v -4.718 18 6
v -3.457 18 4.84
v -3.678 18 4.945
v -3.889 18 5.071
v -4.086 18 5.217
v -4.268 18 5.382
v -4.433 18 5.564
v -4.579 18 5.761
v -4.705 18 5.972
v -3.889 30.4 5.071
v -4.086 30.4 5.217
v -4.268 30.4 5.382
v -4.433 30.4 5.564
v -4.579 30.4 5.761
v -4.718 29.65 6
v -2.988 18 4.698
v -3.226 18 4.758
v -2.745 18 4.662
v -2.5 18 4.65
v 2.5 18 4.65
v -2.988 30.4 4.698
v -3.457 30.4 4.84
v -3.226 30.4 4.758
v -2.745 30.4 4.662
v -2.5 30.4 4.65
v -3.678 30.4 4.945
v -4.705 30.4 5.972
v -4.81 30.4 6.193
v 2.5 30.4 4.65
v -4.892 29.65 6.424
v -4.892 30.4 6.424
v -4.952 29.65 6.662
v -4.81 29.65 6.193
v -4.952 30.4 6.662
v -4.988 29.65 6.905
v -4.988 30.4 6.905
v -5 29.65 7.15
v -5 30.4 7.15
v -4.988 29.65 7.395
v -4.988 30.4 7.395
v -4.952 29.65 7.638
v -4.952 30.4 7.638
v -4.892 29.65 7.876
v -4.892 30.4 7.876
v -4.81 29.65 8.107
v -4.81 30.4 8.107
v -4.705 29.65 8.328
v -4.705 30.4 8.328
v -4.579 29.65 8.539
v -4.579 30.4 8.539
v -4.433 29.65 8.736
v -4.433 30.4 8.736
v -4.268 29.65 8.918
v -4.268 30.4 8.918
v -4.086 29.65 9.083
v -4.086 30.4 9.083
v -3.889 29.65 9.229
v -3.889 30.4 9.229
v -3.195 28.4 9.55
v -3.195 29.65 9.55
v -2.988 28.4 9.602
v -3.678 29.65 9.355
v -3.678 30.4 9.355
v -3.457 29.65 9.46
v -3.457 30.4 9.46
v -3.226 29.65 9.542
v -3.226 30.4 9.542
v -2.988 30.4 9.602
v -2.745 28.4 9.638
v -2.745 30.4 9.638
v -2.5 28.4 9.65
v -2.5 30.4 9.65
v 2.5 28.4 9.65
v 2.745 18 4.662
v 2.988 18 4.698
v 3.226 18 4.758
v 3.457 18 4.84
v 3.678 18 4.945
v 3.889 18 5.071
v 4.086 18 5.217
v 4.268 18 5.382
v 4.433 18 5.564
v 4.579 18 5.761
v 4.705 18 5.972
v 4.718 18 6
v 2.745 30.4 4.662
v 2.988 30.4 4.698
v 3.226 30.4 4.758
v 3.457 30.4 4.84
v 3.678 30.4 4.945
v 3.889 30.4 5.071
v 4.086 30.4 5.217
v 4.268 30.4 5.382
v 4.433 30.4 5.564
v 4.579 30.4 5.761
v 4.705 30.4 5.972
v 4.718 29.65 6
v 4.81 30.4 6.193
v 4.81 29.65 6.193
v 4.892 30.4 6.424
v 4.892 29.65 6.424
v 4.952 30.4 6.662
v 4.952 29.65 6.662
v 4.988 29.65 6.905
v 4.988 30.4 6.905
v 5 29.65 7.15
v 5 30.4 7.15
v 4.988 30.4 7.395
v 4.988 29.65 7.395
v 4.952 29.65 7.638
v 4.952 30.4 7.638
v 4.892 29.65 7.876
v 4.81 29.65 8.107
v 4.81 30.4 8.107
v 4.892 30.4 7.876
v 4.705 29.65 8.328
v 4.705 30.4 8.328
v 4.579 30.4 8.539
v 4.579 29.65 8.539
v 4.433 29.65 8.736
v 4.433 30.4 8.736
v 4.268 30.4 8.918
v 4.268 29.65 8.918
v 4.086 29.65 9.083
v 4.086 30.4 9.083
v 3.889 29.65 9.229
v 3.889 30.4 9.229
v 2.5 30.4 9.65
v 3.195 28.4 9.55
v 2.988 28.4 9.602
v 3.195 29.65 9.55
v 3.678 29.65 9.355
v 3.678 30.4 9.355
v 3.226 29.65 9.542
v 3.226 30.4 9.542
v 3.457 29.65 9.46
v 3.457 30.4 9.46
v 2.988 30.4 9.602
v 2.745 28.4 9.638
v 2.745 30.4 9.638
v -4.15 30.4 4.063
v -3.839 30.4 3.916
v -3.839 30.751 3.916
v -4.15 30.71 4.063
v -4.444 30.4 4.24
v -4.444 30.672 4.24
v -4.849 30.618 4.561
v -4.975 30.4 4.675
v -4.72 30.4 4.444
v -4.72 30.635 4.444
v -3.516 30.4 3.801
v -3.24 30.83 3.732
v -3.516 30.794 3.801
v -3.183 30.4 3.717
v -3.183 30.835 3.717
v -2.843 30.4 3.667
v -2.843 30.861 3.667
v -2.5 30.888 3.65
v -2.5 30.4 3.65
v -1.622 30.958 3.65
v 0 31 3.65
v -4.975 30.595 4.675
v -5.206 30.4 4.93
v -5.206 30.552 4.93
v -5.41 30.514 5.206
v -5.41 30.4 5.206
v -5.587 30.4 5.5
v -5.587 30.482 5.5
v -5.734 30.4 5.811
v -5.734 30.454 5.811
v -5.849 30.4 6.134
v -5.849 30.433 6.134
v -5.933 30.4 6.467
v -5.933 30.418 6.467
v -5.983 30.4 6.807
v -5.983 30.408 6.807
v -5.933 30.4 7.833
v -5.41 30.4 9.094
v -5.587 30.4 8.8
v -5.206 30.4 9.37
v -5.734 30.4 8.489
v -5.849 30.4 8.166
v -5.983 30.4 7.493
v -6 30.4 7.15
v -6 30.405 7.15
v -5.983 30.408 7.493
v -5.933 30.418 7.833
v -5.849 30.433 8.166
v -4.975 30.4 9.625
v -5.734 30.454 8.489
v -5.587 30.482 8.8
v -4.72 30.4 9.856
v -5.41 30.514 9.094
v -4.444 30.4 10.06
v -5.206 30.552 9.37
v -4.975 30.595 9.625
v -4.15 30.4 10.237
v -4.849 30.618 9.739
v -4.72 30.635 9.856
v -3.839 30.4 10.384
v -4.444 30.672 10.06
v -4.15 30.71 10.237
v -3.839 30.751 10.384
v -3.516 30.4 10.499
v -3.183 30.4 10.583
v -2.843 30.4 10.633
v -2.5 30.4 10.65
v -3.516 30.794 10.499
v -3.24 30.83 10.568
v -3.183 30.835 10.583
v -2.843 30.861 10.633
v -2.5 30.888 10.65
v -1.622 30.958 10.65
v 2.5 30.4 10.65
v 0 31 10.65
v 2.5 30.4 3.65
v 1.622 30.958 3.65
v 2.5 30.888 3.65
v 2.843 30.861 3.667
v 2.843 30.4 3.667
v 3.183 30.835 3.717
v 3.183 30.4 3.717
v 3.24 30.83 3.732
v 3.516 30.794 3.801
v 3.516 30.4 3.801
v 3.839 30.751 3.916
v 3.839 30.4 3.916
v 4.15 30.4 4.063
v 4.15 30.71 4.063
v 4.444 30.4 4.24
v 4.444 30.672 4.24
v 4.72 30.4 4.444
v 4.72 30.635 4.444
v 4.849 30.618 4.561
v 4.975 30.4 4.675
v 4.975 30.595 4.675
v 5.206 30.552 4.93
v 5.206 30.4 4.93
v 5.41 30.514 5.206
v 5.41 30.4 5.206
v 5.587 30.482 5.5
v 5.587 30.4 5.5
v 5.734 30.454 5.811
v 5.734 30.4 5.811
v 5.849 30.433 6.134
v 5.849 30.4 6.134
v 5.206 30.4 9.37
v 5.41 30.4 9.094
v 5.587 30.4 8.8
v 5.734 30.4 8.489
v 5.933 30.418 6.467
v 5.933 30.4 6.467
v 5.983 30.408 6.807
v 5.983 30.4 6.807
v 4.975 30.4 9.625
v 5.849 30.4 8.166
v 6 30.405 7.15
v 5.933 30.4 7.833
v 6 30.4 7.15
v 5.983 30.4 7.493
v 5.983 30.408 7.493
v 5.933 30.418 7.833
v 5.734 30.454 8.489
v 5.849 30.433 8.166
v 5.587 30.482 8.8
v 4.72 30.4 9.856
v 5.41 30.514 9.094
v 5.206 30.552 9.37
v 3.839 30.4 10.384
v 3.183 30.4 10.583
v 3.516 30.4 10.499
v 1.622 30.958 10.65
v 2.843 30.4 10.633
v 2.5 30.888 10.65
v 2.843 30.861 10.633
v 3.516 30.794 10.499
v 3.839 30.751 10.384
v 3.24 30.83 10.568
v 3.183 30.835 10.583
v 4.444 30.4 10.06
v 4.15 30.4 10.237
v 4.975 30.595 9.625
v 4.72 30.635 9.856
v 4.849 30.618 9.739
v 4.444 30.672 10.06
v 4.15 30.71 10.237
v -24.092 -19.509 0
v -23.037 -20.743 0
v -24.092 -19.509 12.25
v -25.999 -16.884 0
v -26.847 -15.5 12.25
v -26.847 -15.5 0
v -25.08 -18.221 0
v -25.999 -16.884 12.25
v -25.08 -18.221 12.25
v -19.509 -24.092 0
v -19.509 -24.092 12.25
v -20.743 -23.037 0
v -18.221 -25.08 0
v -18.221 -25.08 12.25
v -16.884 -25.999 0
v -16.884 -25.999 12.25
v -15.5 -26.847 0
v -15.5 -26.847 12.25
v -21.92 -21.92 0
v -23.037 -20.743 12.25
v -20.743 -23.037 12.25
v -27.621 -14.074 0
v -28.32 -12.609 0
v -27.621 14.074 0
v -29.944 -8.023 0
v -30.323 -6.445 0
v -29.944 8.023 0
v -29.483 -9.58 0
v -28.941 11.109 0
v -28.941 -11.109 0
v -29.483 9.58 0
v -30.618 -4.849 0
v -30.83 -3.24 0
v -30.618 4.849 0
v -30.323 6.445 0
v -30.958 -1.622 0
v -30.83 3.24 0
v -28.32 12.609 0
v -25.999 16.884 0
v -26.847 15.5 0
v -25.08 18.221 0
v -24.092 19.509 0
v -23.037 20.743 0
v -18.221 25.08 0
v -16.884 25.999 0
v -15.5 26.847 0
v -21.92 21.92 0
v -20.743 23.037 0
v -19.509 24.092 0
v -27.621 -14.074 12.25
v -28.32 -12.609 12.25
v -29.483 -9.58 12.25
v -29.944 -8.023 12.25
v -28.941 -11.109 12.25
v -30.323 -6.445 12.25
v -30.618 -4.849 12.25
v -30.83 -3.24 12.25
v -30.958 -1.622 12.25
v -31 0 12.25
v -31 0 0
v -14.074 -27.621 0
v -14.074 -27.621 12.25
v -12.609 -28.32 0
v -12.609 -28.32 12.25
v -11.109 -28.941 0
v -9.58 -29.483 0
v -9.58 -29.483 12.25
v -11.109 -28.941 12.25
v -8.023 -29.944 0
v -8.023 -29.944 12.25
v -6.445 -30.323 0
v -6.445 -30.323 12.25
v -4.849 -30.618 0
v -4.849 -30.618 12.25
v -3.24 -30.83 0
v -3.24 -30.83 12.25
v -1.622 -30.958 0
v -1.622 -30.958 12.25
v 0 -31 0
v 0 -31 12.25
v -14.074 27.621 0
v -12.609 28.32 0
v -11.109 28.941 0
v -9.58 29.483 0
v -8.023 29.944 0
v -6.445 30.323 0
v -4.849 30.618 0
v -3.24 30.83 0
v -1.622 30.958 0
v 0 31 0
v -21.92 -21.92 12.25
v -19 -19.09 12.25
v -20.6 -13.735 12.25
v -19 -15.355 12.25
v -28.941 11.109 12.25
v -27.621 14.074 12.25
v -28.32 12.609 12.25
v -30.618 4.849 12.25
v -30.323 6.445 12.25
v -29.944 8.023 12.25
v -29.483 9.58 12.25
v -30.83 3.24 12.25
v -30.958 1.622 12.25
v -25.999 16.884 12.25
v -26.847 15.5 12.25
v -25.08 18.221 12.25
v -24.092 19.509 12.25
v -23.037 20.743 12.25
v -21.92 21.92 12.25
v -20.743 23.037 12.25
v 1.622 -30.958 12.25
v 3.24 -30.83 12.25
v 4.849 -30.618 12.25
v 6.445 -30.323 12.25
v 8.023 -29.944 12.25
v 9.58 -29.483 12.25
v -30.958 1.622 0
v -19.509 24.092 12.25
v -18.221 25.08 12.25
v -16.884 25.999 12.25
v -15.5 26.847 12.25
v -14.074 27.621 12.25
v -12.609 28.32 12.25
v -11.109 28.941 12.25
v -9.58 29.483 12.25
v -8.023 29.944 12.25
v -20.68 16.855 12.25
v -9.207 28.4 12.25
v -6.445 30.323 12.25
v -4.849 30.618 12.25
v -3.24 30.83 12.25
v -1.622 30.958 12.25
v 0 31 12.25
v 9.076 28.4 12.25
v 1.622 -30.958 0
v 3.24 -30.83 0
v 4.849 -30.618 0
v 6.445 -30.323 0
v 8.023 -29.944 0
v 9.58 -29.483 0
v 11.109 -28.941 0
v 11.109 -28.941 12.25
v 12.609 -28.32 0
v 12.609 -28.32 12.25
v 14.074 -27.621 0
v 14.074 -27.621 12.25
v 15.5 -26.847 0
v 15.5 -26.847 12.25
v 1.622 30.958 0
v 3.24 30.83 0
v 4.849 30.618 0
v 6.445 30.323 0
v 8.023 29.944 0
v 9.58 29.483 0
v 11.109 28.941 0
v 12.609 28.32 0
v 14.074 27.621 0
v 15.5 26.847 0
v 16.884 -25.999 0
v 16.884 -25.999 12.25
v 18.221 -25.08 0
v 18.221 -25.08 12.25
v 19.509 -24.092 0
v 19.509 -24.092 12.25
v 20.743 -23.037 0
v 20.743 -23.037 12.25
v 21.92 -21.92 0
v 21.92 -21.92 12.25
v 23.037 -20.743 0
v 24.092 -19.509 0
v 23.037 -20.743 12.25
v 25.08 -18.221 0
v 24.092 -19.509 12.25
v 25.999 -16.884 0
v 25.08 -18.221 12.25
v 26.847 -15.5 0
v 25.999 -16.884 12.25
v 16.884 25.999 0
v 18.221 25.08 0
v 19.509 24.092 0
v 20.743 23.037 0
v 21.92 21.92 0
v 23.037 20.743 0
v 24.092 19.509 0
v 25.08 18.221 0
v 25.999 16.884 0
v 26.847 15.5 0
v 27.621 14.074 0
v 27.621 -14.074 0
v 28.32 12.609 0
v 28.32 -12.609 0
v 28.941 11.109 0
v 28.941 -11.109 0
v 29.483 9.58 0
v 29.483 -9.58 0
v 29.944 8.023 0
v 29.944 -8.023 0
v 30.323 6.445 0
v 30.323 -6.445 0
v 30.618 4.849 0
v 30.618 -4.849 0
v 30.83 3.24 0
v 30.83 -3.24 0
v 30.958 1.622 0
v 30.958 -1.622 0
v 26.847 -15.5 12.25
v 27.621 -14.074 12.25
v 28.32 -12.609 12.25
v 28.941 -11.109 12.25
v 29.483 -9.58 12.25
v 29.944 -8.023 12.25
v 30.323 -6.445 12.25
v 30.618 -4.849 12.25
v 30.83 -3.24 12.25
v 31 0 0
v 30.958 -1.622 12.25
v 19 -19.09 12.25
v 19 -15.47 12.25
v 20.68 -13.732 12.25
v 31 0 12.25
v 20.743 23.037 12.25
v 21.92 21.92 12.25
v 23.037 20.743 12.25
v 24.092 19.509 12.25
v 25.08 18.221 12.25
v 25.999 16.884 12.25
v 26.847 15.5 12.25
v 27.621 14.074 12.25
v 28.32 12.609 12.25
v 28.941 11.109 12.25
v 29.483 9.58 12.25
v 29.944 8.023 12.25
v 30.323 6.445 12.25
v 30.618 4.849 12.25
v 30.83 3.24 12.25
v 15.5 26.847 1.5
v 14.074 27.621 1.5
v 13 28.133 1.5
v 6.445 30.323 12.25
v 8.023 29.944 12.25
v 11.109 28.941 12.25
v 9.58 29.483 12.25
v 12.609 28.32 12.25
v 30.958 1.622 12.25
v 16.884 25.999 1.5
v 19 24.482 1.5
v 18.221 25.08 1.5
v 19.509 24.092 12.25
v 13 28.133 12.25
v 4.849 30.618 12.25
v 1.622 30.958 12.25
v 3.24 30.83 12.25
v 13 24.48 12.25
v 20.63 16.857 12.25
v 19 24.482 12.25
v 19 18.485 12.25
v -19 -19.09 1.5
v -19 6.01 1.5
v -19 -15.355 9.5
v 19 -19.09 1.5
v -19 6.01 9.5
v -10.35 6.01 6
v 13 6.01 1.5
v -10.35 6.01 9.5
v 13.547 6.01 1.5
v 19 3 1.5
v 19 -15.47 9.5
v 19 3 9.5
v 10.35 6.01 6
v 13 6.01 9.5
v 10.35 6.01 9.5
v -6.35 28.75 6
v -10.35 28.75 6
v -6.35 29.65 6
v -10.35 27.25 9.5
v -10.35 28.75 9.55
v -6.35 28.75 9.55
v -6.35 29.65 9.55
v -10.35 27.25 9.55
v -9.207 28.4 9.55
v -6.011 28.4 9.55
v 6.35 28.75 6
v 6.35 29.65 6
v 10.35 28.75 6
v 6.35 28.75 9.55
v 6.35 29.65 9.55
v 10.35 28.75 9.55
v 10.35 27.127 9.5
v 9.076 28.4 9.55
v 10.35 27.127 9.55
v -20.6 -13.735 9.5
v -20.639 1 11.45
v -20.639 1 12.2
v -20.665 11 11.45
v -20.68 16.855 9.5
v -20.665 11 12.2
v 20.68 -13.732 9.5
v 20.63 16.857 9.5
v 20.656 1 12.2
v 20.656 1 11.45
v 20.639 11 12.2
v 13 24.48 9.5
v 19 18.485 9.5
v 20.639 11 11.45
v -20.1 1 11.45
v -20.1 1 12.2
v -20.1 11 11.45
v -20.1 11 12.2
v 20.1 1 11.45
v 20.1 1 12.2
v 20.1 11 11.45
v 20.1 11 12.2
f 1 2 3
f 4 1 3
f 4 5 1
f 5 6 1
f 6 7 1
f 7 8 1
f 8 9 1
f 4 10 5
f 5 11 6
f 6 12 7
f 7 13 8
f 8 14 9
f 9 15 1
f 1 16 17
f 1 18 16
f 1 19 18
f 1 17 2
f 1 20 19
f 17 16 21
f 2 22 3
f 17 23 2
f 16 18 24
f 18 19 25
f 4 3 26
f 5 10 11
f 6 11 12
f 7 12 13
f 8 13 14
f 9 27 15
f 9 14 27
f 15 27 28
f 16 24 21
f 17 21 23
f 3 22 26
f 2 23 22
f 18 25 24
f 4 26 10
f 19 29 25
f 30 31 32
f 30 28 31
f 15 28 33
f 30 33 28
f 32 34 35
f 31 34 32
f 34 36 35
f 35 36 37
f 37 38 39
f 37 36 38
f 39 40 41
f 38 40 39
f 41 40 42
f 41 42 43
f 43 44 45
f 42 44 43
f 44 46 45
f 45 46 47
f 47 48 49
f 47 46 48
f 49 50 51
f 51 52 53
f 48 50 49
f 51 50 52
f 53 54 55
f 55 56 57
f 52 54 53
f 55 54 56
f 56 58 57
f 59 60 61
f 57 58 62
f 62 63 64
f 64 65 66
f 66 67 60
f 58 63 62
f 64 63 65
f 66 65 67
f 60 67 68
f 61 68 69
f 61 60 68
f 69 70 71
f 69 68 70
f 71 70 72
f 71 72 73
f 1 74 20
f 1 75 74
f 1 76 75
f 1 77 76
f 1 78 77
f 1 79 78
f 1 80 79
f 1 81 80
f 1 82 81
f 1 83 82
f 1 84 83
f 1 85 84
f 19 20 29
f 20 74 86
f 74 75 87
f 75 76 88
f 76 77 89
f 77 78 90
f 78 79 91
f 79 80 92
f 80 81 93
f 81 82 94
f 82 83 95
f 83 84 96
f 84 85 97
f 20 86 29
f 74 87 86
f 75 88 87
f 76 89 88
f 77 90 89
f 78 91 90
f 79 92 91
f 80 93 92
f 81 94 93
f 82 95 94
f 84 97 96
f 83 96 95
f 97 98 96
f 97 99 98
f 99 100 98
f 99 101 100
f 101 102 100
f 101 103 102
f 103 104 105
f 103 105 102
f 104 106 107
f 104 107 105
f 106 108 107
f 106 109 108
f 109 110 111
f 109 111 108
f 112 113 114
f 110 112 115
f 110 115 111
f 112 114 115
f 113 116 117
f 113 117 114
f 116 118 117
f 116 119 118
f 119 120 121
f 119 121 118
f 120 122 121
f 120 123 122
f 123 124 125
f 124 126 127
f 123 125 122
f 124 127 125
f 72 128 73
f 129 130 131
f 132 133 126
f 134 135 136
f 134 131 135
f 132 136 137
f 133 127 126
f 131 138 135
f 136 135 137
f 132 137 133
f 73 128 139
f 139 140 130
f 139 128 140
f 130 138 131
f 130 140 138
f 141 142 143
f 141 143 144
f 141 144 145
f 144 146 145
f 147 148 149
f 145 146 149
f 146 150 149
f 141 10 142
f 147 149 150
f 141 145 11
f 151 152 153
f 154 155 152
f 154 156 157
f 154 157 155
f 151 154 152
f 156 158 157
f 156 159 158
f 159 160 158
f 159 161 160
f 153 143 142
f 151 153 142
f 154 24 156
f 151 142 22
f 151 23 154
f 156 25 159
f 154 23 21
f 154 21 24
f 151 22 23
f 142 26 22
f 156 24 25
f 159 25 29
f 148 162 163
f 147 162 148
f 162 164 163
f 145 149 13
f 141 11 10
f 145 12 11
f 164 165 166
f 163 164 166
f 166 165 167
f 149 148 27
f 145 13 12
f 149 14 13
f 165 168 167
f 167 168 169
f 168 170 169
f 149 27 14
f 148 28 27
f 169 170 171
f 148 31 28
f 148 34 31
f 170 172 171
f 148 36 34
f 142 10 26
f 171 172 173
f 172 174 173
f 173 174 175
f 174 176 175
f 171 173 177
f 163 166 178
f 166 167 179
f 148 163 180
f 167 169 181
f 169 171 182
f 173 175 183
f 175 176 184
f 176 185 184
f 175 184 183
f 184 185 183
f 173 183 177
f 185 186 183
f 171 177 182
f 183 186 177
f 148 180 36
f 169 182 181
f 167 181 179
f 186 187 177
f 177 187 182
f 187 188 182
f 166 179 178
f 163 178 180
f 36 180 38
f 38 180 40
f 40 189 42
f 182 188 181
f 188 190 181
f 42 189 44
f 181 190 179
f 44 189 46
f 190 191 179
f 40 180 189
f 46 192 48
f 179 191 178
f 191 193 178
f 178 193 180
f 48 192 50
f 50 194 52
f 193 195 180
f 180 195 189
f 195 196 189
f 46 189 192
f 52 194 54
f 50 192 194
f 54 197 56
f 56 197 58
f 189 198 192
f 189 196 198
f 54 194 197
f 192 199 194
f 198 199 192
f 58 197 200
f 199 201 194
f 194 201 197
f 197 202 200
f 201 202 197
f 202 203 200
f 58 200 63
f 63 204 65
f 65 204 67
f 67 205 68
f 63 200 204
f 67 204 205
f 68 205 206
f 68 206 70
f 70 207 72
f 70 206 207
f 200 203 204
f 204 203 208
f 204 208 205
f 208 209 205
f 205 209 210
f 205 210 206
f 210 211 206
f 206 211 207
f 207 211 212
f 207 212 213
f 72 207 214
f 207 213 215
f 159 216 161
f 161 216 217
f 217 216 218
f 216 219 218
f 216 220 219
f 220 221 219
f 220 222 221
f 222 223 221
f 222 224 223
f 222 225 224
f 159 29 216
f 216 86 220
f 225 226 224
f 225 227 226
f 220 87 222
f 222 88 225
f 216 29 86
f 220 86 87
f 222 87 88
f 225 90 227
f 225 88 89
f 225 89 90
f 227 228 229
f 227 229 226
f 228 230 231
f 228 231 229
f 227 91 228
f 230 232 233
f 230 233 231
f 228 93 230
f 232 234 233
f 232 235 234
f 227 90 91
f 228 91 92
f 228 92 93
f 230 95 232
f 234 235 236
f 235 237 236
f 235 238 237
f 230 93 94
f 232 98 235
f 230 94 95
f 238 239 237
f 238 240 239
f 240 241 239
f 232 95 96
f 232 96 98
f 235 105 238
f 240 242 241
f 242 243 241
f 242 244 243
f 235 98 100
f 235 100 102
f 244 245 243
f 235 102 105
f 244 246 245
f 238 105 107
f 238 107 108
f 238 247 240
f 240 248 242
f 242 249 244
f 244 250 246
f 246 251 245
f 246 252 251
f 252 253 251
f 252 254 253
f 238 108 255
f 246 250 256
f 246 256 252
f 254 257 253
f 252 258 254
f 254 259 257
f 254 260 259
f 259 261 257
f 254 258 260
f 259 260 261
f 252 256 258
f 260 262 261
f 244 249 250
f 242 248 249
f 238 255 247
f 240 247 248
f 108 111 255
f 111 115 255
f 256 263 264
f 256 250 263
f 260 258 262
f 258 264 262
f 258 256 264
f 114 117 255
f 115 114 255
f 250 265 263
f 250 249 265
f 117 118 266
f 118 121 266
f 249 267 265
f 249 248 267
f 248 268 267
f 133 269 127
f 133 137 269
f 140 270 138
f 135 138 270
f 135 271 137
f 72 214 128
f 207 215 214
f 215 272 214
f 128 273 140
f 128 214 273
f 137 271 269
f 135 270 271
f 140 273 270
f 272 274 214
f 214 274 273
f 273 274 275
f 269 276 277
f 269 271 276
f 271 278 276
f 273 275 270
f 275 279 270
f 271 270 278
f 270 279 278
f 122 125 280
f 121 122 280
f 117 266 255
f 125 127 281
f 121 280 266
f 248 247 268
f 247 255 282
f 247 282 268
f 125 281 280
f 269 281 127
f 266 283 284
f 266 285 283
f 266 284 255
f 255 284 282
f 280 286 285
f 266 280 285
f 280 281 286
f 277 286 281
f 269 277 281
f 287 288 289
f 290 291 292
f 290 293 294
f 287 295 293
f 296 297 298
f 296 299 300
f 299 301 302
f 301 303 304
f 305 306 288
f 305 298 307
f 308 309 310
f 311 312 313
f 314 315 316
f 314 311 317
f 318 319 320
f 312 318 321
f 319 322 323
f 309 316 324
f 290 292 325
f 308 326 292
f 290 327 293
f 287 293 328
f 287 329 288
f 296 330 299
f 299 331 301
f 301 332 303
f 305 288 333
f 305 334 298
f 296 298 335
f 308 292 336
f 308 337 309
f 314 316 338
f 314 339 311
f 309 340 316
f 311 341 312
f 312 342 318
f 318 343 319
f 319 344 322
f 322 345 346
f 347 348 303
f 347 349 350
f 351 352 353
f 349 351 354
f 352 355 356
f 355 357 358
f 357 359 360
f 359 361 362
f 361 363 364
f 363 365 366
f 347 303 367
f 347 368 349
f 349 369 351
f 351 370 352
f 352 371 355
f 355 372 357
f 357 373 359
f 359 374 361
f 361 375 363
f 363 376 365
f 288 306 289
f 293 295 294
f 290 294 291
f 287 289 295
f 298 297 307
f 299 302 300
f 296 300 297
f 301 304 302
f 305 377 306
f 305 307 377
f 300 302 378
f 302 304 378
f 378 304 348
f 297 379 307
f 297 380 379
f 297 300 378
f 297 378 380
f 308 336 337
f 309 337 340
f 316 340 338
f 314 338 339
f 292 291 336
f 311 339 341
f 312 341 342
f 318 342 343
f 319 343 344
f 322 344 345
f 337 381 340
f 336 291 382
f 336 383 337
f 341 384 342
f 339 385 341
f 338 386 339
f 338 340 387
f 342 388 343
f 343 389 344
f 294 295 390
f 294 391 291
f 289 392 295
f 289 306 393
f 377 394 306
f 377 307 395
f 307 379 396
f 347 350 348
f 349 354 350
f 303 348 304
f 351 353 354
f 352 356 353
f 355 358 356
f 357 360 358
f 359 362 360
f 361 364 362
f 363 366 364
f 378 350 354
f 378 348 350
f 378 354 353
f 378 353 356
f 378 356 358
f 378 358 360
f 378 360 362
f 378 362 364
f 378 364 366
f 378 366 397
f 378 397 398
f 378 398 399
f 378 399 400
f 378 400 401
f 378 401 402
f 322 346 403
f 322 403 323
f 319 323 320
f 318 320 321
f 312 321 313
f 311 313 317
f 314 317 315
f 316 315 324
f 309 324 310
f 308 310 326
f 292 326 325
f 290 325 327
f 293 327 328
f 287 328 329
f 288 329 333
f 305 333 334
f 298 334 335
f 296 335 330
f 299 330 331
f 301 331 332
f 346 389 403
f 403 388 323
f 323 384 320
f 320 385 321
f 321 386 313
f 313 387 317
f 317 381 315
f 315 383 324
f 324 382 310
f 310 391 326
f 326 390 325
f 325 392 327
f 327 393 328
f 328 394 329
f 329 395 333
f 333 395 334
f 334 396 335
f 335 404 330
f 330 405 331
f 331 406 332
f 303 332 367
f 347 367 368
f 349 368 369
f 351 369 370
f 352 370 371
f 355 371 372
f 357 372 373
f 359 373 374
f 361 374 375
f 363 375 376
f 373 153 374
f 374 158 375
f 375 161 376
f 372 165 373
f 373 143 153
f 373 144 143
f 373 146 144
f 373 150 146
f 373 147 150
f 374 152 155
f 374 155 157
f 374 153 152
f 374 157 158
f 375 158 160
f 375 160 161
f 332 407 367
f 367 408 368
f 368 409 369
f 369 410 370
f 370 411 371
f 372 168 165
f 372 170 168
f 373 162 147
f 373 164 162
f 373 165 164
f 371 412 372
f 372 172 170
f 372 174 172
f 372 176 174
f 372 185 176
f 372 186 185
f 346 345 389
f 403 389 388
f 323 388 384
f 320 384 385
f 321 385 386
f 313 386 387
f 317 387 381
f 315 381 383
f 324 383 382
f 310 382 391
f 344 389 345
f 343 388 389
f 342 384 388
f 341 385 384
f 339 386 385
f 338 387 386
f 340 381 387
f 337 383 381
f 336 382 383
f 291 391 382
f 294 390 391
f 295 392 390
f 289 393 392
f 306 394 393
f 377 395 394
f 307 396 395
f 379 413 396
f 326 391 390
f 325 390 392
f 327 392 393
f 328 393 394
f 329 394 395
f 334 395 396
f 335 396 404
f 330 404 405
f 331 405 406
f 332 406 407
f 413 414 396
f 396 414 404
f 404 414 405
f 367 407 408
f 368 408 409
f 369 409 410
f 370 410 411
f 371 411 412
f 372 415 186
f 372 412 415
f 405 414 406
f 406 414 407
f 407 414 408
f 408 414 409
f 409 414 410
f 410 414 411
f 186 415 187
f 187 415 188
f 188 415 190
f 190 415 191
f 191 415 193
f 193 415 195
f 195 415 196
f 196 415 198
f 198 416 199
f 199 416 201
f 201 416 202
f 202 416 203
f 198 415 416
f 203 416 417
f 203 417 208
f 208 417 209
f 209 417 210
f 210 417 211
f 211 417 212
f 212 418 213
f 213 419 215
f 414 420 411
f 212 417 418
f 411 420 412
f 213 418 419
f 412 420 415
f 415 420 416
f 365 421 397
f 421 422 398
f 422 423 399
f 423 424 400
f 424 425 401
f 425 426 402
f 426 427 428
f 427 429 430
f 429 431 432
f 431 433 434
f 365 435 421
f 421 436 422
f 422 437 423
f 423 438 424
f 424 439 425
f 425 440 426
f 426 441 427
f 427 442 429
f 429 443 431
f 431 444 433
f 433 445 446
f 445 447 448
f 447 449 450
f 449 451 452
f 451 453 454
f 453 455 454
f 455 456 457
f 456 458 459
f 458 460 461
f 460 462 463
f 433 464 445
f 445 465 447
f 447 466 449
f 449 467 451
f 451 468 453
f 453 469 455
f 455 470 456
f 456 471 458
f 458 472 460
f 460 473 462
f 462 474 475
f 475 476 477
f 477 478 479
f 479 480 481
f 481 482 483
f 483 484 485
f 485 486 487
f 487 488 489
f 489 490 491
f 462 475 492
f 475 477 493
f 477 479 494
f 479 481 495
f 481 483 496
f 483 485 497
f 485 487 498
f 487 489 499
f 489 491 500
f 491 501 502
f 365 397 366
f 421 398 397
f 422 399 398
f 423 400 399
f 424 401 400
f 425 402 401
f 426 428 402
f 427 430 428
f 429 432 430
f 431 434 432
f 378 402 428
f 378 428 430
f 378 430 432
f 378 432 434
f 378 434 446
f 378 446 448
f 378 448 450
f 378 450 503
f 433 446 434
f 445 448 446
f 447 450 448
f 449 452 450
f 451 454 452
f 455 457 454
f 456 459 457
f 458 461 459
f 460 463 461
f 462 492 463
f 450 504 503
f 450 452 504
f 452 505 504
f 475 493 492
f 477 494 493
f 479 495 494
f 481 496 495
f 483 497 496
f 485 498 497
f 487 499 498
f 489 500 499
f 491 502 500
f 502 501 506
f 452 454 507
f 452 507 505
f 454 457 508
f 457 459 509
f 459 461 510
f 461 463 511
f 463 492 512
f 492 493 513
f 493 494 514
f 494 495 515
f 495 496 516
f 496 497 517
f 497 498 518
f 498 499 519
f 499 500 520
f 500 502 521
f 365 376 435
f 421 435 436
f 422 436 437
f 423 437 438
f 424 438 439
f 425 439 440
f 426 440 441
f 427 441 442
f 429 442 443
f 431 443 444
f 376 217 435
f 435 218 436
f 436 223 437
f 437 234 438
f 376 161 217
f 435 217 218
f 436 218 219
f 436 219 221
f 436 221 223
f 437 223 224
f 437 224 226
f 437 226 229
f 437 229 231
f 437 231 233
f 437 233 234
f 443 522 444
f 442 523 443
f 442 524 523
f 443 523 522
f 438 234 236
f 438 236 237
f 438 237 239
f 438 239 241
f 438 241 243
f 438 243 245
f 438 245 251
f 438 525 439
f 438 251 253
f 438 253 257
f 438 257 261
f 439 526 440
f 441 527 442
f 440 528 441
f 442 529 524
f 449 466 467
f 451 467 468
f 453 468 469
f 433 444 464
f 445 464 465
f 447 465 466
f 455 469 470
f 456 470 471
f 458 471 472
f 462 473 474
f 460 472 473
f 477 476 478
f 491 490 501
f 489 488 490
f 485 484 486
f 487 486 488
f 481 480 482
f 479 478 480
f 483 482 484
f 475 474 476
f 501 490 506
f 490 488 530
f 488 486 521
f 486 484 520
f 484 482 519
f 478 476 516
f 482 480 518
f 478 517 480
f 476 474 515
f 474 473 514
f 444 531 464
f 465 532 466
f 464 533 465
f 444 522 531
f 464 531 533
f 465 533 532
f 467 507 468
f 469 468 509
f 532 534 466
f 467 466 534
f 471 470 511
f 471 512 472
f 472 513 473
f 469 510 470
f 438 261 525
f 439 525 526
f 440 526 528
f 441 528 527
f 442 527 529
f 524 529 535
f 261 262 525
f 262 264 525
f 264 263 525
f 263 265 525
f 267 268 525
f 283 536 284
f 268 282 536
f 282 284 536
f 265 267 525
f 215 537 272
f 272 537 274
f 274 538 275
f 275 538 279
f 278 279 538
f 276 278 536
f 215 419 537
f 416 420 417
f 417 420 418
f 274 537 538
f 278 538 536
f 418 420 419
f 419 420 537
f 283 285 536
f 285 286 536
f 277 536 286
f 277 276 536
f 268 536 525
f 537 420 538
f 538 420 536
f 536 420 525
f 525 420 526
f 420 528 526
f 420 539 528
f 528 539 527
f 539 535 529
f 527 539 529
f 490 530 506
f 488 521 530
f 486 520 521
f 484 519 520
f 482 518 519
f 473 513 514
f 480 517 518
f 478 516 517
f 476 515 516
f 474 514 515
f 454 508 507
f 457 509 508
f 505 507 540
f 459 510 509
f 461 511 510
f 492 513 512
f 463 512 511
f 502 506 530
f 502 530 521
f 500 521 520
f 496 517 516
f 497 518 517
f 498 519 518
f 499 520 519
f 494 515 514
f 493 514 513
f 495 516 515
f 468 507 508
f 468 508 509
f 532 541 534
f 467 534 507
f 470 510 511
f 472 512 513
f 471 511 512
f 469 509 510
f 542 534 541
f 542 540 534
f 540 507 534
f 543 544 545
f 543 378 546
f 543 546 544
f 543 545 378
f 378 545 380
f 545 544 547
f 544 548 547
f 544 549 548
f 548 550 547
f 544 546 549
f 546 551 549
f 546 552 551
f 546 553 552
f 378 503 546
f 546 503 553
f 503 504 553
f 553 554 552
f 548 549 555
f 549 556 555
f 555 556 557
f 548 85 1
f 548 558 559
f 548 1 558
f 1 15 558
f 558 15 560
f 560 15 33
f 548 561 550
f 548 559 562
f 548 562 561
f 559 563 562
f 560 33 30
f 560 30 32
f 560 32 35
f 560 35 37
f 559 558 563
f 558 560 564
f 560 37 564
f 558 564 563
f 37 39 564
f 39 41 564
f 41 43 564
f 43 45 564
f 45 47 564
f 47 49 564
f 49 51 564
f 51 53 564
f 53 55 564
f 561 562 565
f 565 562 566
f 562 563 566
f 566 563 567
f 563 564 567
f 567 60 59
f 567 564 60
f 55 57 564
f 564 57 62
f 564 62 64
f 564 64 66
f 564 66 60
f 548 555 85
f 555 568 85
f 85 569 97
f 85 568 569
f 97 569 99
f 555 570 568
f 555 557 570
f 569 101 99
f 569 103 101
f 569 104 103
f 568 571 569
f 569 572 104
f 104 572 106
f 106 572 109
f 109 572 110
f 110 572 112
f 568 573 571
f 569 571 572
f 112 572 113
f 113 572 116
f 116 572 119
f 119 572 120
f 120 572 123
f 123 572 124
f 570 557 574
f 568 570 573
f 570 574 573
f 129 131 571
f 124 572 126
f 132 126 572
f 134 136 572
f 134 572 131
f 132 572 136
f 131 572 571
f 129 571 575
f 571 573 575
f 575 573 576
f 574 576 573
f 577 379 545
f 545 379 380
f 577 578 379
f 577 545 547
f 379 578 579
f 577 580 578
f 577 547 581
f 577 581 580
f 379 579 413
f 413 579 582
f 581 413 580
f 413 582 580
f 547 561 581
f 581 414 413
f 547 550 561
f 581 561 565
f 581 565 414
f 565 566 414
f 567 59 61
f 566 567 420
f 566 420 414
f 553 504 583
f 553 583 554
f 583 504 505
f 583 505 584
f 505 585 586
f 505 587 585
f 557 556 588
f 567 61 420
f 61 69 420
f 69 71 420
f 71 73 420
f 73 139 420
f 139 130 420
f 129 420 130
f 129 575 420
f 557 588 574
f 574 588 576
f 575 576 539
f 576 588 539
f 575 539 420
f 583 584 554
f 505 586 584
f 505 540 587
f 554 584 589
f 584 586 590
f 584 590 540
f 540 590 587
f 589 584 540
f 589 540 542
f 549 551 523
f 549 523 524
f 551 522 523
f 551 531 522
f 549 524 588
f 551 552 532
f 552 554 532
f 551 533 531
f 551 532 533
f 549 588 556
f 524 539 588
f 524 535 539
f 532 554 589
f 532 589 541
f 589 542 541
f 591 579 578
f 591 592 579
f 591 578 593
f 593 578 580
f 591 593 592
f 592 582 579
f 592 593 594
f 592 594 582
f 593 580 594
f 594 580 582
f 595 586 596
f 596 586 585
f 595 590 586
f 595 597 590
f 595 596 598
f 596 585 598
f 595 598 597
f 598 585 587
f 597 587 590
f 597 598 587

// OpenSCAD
// Assembly / gluing bracket for the rev1 single-button board and battery.
// Print floor-down. No supports.
//   openscad -o glue_bracket.stl glue_bracket.scad

include <../assets/common.scad>

/* [Preview / Rendering] */
$fn = $preview ? 48 : 120;

/* [Bracket Options] */
// Solid outer radius (matches base outer_r by default)
bracket_outer_r = outer_r;
// Include USB cutout for connector clearance / test plugging
include_usb_tunnel = true;
// Keep snap-in PCB retention tabs while glue/tape sets
include_pcb_tabs = true;
// Optional bottom push-out hole diameter under the battery (0 = solid floor)
push_hole_d = 0;

/* [Wire Channel] */
// Matches wire_notch() X/Y start in common.scad, extended through the +Y wall and top face
wire_slot_x = 13.0;
wire_slot_y = stack_y - 3.0;
wire_slot_w = 6.0;

module glue_bracket_body() {
  // Plain solid cylinder with flat bottom for maximum bed adhesion
  cylinder(r = bracket_outer_r, h = seat_z);
}

module extended_wire_slot() {
  slot_len = bracket_outer_r - wire_slot_y + 5.0;
  slot_h   = seat_z - floor_t + eps;
  translate([wire_slot_x, wire_slot_y, floor_t])
    cube([wire_slot_w, slot_len, slot_h]);
}

module battery_push_hole() {
  if (push_hole_d > 0) {
    translate([0, stack_y - battery_top - battery_y / 2, -eps])
      cylinder(d = push_hole_d, h = floor_t + 2 * eps, $fn = 36);
  }
}

module glue_bracket() {
  difference() {
    glue_bracket_body();

    // Battery pocket
    translate([0, 0, floor_t])
      linear_extrude(battery_d + eps + 10)
        battery_2d();

    // XIAO module recess beneath PCB
    translate([0, 0, pcb_z - xiao_d])
      linear_extrude(xiao_d + eps)
        offset(delta = xiao_gap) xiao_2d();

    // PCB cavity
    translate([0, 0, pcb_z])
      linear_extrude(seat_z - pcb_z + eps)
        offset(delta = pcb_gap) board_2d();

    // Extended battery wire channel (+Y through outer wall, open to top face)
    extended_wire_slot();

    // Optional USB-C tunnel clearance
    if (include_usb_tunnel)
      usb_tunnel();

    // Optional bottom push-out hole
    battery_push_hole();
  }

  if (include_pcb_tabs)
    pcb_tabs();
}

glue_bracket();
